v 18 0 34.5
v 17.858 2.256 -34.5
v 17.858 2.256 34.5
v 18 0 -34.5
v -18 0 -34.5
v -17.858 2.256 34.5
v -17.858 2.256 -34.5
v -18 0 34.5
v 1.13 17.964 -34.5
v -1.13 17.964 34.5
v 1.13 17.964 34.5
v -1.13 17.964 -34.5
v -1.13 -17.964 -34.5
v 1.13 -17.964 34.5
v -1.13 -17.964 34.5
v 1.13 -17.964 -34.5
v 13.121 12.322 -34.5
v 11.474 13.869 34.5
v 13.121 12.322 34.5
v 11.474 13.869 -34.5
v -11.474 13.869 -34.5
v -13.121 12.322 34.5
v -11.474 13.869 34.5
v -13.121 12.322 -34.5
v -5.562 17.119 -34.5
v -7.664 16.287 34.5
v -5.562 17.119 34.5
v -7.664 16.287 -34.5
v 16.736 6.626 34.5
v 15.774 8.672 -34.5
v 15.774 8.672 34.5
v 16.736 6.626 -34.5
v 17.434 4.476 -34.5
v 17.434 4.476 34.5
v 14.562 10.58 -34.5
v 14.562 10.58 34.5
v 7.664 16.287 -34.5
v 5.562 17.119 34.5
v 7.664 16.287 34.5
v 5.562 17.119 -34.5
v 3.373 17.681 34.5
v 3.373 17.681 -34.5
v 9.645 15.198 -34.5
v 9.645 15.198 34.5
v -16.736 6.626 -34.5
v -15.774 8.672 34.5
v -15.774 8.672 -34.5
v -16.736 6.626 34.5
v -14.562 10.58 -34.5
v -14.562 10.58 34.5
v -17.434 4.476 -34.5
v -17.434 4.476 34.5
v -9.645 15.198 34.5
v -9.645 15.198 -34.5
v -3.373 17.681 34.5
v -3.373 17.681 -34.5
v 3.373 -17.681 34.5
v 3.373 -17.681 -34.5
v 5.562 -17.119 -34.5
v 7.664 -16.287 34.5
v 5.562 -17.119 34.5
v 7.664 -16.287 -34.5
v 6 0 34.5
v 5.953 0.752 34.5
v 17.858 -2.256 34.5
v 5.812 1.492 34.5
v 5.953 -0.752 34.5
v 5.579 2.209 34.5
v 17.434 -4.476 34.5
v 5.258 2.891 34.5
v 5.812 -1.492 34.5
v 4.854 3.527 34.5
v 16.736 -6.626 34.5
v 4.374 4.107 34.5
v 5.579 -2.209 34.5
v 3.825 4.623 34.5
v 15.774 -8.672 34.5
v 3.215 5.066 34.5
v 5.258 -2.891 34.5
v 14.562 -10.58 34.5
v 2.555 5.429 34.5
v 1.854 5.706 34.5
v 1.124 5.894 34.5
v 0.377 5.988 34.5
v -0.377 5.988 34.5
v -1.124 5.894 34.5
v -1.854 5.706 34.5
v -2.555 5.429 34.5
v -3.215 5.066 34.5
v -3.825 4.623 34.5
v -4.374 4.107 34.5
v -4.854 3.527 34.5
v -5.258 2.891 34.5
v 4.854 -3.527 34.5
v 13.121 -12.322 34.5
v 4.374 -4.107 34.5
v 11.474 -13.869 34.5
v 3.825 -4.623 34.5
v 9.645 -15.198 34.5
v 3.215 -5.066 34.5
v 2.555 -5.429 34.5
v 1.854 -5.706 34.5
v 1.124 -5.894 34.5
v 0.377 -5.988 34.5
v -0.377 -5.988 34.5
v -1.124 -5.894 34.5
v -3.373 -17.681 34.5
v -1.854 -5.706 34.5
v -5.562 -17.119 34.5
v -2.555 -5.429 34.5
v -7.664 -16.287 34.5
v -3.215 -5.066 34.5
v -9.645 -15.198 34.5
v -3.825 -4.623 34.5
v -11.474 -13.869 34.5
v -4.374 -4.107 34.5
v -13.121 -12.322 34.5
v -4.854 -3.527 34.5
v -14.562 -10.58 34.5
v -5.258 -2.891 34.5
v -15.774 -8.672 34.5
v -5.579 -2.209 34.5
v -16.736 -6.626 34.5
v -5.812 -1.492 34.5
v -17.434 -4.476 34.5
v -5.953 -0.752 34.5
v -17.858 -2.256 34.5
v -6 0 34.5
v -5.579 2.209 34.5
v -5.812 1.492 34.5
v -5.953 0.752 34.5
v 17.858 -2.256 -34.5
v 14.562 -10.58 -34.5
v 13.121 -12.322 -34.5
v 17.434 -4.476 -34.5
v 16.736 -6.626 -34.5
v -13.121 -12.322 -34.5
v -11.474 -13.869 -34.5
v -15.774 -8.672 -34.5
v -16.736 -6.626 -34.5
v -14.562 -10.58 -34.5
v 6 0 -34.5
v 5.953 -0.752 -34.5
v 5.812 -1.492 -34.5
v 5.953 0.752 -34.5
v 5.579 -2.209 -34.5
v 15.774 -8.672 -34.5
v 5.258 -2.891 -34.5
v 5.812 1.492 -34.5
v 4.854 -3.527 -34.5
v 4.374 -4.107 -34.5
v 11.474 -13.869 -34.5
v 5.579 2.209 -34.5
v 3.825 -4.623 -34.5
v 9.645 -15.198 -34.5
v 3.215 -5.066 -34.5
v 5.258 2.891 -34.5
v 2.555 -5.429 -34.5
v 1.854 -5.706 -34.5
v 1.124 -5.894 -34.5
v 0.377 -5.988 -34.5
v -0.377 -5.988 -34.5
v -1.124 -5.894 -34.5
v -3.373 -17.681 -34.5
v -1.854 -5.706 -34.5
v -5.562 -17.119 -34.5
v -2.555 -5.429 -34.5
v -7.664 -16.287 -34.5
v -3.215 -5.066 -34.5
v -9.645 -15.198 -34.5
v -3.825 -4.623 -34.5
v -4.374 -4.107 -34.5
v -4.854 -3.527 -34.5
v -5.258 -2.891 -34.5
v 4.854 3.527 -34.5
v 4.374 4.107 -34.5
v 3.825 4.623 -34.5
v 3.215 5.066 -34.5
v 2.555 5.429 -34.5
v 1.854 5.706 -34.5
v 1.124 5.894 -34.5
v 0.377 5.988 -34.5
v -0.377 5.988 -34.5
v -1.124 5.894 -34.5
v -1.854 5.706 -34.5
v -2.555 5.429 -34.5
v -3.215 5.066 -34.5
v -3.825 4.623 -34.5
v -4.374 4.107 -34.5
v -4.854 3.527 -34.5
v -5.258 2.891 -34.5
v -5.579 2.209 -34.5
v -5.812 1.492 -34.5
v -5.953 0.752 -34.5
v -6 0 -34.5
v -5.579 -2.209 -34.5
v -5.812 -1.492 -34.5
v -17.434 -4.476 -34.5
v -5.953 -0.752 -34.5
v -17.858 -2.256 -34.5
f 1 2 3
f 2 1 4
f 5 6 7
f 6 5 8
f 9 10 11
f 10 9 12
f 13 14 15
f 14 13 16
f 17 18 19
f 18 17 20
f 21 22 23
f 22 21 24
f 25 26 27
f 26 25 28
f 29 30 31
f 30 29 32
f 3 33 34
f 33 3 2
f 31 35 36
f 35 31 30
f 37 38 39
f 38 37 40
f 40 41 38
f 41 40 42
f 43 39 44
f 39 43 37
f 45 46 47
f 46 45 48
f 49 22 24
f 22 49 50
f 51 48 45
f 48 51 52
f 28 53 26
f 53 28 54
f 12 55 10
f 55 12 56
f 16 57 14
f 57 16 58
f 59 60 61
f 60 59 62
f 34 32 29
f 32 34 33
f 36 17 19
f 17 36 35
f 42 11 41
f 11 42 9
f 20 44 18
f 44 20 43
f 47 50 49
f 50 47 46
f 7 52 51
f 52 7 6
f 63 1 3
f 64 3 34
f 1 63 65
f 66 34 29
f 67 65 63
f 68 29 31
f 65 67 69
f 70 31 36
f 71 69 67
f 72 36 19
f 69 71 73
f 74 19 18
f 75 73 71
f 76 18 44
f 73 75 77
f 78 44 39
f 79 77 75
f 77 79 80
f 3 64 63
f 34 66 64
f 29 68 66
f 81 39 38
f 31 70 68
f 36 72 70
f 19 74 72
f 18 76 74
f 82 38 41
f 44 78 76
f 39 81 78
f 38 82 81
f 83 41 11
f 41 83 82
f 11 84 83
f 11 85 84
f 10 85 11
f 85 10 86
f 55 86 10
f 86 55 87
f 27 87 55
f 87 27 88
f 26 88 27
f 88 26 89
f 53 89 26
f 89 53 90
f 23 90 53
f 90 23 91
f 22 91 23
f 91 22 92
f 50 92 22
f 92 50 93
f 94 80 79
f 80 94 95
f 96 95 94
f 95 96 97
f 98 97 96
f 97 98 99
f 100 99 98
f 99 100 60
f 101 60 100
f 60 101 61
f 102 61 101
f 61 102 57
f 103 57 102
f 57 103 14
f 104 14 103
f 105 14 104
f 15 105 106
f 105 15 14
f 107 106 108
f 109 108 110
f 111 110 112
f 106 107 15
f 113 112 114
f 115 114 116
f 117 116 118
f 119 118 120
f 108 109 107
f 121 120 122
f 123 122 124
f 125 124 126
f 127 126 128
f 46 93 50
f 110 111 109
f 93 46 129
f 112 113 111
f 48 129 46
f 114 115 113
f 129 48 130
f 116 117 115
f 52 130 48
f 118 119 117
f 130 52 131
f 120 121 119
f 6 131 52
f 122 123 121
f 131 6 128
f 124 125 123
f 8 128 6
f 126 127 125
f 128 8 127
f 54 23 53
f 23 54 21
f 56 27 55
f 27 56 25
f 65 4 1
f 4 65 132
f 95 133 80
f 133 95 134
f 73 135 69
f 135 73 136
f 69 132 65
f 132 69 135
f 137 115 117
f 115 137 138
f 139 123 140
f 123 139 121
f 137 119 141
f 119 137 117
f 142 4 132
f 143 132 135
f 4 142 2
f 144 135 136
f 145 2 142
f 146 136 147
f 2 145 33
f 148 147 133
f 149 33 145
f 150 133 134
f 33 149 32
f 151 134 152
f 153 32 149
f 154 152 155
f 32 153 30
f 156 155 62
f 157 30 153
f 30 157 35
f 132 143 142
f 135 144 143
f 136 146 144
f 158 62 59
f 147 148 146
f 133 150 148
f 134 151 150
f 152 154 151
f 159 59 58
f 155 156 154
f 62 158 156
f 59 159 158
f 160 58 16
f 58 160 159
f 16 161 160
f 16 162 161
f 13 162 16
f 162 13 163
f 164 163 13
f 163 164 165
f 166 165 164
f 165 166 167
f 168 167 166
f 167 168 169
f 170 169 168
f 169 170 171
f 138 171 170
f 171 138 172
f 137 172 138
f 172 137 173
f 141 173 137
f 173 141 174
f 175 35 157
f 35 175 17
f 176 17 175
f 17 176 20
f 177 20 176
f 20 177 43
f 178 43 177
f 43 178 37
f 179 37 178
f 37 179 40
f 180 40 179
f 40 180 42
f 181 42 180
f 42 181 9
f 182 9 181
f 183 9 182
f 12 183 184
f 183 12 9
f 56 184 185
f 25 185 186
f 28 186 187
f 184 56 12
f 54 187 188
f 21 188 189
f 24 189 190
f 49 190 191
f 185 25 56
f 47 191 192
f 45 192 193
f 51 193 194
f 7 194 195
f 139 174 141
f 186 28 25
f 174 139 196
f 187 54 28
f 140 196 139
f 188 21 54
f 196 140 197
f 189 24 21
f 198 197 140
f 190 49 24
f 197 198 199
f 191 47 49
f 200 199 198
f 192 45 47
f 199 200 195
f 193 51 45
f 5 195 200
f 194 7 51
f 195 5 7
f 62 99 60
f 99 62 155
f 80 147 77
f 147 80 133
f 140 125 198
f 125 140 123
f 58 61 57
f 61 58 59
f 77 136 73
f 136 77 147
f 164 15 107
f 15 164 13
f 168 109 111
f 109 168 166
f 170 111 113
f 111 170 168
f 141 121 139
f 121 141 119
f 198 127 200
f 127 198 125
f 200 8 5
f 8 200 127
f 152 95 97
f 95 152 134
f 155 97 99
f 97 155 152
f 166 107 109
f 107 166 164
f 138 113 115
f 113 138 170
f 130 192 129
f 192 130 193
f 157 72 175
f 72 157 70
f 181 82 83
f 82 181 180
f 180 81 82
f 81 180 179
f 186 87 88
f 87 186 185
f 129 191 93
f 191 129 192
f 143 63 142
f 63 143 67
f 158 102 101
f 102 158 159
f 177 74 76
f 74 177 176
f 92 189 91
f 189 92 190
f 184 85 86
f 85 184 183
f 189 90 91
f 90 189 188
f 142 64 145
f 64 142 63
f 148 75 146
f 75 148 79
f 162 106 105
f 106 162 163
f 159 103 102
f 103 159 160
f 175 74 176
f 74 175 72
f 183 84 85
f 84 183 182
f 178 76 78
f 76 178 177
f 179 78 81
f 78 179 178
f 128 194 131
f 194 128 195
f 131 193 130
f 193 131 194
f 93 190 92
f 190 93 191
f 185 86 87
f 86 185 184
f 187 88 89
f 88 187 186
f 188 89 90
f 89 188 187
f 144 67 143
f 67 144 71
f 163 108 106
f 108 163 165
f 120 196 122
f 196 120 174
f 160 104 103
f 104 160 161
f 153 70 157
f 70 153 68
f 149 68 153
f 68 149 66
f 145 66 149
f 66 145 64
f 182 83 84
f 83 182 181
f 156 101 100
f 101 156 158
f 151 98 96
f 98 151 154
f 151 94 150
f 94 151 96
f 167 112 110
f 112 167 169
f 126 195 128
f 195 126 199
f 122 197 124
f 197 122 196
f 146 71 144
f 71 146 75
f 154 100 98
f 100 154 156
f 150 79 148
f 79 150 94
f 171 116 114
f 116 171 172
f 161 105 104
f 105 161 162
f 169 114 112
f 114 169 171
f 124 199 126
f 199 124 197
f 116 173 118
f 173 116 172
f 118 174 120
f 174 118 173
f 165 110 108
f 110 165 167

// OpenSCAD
$fn = 50;


difference() {
	union() {
		translate(v = [0, 0, -34.5000000000]) {
			cylinder(h = 69, r = 18.0000000000);
		}
	}
	union() {
		translate(v = [0, 0, -100.0000000000]) {
			cylinder(h = 200, r = 6);
		}
	}
}
